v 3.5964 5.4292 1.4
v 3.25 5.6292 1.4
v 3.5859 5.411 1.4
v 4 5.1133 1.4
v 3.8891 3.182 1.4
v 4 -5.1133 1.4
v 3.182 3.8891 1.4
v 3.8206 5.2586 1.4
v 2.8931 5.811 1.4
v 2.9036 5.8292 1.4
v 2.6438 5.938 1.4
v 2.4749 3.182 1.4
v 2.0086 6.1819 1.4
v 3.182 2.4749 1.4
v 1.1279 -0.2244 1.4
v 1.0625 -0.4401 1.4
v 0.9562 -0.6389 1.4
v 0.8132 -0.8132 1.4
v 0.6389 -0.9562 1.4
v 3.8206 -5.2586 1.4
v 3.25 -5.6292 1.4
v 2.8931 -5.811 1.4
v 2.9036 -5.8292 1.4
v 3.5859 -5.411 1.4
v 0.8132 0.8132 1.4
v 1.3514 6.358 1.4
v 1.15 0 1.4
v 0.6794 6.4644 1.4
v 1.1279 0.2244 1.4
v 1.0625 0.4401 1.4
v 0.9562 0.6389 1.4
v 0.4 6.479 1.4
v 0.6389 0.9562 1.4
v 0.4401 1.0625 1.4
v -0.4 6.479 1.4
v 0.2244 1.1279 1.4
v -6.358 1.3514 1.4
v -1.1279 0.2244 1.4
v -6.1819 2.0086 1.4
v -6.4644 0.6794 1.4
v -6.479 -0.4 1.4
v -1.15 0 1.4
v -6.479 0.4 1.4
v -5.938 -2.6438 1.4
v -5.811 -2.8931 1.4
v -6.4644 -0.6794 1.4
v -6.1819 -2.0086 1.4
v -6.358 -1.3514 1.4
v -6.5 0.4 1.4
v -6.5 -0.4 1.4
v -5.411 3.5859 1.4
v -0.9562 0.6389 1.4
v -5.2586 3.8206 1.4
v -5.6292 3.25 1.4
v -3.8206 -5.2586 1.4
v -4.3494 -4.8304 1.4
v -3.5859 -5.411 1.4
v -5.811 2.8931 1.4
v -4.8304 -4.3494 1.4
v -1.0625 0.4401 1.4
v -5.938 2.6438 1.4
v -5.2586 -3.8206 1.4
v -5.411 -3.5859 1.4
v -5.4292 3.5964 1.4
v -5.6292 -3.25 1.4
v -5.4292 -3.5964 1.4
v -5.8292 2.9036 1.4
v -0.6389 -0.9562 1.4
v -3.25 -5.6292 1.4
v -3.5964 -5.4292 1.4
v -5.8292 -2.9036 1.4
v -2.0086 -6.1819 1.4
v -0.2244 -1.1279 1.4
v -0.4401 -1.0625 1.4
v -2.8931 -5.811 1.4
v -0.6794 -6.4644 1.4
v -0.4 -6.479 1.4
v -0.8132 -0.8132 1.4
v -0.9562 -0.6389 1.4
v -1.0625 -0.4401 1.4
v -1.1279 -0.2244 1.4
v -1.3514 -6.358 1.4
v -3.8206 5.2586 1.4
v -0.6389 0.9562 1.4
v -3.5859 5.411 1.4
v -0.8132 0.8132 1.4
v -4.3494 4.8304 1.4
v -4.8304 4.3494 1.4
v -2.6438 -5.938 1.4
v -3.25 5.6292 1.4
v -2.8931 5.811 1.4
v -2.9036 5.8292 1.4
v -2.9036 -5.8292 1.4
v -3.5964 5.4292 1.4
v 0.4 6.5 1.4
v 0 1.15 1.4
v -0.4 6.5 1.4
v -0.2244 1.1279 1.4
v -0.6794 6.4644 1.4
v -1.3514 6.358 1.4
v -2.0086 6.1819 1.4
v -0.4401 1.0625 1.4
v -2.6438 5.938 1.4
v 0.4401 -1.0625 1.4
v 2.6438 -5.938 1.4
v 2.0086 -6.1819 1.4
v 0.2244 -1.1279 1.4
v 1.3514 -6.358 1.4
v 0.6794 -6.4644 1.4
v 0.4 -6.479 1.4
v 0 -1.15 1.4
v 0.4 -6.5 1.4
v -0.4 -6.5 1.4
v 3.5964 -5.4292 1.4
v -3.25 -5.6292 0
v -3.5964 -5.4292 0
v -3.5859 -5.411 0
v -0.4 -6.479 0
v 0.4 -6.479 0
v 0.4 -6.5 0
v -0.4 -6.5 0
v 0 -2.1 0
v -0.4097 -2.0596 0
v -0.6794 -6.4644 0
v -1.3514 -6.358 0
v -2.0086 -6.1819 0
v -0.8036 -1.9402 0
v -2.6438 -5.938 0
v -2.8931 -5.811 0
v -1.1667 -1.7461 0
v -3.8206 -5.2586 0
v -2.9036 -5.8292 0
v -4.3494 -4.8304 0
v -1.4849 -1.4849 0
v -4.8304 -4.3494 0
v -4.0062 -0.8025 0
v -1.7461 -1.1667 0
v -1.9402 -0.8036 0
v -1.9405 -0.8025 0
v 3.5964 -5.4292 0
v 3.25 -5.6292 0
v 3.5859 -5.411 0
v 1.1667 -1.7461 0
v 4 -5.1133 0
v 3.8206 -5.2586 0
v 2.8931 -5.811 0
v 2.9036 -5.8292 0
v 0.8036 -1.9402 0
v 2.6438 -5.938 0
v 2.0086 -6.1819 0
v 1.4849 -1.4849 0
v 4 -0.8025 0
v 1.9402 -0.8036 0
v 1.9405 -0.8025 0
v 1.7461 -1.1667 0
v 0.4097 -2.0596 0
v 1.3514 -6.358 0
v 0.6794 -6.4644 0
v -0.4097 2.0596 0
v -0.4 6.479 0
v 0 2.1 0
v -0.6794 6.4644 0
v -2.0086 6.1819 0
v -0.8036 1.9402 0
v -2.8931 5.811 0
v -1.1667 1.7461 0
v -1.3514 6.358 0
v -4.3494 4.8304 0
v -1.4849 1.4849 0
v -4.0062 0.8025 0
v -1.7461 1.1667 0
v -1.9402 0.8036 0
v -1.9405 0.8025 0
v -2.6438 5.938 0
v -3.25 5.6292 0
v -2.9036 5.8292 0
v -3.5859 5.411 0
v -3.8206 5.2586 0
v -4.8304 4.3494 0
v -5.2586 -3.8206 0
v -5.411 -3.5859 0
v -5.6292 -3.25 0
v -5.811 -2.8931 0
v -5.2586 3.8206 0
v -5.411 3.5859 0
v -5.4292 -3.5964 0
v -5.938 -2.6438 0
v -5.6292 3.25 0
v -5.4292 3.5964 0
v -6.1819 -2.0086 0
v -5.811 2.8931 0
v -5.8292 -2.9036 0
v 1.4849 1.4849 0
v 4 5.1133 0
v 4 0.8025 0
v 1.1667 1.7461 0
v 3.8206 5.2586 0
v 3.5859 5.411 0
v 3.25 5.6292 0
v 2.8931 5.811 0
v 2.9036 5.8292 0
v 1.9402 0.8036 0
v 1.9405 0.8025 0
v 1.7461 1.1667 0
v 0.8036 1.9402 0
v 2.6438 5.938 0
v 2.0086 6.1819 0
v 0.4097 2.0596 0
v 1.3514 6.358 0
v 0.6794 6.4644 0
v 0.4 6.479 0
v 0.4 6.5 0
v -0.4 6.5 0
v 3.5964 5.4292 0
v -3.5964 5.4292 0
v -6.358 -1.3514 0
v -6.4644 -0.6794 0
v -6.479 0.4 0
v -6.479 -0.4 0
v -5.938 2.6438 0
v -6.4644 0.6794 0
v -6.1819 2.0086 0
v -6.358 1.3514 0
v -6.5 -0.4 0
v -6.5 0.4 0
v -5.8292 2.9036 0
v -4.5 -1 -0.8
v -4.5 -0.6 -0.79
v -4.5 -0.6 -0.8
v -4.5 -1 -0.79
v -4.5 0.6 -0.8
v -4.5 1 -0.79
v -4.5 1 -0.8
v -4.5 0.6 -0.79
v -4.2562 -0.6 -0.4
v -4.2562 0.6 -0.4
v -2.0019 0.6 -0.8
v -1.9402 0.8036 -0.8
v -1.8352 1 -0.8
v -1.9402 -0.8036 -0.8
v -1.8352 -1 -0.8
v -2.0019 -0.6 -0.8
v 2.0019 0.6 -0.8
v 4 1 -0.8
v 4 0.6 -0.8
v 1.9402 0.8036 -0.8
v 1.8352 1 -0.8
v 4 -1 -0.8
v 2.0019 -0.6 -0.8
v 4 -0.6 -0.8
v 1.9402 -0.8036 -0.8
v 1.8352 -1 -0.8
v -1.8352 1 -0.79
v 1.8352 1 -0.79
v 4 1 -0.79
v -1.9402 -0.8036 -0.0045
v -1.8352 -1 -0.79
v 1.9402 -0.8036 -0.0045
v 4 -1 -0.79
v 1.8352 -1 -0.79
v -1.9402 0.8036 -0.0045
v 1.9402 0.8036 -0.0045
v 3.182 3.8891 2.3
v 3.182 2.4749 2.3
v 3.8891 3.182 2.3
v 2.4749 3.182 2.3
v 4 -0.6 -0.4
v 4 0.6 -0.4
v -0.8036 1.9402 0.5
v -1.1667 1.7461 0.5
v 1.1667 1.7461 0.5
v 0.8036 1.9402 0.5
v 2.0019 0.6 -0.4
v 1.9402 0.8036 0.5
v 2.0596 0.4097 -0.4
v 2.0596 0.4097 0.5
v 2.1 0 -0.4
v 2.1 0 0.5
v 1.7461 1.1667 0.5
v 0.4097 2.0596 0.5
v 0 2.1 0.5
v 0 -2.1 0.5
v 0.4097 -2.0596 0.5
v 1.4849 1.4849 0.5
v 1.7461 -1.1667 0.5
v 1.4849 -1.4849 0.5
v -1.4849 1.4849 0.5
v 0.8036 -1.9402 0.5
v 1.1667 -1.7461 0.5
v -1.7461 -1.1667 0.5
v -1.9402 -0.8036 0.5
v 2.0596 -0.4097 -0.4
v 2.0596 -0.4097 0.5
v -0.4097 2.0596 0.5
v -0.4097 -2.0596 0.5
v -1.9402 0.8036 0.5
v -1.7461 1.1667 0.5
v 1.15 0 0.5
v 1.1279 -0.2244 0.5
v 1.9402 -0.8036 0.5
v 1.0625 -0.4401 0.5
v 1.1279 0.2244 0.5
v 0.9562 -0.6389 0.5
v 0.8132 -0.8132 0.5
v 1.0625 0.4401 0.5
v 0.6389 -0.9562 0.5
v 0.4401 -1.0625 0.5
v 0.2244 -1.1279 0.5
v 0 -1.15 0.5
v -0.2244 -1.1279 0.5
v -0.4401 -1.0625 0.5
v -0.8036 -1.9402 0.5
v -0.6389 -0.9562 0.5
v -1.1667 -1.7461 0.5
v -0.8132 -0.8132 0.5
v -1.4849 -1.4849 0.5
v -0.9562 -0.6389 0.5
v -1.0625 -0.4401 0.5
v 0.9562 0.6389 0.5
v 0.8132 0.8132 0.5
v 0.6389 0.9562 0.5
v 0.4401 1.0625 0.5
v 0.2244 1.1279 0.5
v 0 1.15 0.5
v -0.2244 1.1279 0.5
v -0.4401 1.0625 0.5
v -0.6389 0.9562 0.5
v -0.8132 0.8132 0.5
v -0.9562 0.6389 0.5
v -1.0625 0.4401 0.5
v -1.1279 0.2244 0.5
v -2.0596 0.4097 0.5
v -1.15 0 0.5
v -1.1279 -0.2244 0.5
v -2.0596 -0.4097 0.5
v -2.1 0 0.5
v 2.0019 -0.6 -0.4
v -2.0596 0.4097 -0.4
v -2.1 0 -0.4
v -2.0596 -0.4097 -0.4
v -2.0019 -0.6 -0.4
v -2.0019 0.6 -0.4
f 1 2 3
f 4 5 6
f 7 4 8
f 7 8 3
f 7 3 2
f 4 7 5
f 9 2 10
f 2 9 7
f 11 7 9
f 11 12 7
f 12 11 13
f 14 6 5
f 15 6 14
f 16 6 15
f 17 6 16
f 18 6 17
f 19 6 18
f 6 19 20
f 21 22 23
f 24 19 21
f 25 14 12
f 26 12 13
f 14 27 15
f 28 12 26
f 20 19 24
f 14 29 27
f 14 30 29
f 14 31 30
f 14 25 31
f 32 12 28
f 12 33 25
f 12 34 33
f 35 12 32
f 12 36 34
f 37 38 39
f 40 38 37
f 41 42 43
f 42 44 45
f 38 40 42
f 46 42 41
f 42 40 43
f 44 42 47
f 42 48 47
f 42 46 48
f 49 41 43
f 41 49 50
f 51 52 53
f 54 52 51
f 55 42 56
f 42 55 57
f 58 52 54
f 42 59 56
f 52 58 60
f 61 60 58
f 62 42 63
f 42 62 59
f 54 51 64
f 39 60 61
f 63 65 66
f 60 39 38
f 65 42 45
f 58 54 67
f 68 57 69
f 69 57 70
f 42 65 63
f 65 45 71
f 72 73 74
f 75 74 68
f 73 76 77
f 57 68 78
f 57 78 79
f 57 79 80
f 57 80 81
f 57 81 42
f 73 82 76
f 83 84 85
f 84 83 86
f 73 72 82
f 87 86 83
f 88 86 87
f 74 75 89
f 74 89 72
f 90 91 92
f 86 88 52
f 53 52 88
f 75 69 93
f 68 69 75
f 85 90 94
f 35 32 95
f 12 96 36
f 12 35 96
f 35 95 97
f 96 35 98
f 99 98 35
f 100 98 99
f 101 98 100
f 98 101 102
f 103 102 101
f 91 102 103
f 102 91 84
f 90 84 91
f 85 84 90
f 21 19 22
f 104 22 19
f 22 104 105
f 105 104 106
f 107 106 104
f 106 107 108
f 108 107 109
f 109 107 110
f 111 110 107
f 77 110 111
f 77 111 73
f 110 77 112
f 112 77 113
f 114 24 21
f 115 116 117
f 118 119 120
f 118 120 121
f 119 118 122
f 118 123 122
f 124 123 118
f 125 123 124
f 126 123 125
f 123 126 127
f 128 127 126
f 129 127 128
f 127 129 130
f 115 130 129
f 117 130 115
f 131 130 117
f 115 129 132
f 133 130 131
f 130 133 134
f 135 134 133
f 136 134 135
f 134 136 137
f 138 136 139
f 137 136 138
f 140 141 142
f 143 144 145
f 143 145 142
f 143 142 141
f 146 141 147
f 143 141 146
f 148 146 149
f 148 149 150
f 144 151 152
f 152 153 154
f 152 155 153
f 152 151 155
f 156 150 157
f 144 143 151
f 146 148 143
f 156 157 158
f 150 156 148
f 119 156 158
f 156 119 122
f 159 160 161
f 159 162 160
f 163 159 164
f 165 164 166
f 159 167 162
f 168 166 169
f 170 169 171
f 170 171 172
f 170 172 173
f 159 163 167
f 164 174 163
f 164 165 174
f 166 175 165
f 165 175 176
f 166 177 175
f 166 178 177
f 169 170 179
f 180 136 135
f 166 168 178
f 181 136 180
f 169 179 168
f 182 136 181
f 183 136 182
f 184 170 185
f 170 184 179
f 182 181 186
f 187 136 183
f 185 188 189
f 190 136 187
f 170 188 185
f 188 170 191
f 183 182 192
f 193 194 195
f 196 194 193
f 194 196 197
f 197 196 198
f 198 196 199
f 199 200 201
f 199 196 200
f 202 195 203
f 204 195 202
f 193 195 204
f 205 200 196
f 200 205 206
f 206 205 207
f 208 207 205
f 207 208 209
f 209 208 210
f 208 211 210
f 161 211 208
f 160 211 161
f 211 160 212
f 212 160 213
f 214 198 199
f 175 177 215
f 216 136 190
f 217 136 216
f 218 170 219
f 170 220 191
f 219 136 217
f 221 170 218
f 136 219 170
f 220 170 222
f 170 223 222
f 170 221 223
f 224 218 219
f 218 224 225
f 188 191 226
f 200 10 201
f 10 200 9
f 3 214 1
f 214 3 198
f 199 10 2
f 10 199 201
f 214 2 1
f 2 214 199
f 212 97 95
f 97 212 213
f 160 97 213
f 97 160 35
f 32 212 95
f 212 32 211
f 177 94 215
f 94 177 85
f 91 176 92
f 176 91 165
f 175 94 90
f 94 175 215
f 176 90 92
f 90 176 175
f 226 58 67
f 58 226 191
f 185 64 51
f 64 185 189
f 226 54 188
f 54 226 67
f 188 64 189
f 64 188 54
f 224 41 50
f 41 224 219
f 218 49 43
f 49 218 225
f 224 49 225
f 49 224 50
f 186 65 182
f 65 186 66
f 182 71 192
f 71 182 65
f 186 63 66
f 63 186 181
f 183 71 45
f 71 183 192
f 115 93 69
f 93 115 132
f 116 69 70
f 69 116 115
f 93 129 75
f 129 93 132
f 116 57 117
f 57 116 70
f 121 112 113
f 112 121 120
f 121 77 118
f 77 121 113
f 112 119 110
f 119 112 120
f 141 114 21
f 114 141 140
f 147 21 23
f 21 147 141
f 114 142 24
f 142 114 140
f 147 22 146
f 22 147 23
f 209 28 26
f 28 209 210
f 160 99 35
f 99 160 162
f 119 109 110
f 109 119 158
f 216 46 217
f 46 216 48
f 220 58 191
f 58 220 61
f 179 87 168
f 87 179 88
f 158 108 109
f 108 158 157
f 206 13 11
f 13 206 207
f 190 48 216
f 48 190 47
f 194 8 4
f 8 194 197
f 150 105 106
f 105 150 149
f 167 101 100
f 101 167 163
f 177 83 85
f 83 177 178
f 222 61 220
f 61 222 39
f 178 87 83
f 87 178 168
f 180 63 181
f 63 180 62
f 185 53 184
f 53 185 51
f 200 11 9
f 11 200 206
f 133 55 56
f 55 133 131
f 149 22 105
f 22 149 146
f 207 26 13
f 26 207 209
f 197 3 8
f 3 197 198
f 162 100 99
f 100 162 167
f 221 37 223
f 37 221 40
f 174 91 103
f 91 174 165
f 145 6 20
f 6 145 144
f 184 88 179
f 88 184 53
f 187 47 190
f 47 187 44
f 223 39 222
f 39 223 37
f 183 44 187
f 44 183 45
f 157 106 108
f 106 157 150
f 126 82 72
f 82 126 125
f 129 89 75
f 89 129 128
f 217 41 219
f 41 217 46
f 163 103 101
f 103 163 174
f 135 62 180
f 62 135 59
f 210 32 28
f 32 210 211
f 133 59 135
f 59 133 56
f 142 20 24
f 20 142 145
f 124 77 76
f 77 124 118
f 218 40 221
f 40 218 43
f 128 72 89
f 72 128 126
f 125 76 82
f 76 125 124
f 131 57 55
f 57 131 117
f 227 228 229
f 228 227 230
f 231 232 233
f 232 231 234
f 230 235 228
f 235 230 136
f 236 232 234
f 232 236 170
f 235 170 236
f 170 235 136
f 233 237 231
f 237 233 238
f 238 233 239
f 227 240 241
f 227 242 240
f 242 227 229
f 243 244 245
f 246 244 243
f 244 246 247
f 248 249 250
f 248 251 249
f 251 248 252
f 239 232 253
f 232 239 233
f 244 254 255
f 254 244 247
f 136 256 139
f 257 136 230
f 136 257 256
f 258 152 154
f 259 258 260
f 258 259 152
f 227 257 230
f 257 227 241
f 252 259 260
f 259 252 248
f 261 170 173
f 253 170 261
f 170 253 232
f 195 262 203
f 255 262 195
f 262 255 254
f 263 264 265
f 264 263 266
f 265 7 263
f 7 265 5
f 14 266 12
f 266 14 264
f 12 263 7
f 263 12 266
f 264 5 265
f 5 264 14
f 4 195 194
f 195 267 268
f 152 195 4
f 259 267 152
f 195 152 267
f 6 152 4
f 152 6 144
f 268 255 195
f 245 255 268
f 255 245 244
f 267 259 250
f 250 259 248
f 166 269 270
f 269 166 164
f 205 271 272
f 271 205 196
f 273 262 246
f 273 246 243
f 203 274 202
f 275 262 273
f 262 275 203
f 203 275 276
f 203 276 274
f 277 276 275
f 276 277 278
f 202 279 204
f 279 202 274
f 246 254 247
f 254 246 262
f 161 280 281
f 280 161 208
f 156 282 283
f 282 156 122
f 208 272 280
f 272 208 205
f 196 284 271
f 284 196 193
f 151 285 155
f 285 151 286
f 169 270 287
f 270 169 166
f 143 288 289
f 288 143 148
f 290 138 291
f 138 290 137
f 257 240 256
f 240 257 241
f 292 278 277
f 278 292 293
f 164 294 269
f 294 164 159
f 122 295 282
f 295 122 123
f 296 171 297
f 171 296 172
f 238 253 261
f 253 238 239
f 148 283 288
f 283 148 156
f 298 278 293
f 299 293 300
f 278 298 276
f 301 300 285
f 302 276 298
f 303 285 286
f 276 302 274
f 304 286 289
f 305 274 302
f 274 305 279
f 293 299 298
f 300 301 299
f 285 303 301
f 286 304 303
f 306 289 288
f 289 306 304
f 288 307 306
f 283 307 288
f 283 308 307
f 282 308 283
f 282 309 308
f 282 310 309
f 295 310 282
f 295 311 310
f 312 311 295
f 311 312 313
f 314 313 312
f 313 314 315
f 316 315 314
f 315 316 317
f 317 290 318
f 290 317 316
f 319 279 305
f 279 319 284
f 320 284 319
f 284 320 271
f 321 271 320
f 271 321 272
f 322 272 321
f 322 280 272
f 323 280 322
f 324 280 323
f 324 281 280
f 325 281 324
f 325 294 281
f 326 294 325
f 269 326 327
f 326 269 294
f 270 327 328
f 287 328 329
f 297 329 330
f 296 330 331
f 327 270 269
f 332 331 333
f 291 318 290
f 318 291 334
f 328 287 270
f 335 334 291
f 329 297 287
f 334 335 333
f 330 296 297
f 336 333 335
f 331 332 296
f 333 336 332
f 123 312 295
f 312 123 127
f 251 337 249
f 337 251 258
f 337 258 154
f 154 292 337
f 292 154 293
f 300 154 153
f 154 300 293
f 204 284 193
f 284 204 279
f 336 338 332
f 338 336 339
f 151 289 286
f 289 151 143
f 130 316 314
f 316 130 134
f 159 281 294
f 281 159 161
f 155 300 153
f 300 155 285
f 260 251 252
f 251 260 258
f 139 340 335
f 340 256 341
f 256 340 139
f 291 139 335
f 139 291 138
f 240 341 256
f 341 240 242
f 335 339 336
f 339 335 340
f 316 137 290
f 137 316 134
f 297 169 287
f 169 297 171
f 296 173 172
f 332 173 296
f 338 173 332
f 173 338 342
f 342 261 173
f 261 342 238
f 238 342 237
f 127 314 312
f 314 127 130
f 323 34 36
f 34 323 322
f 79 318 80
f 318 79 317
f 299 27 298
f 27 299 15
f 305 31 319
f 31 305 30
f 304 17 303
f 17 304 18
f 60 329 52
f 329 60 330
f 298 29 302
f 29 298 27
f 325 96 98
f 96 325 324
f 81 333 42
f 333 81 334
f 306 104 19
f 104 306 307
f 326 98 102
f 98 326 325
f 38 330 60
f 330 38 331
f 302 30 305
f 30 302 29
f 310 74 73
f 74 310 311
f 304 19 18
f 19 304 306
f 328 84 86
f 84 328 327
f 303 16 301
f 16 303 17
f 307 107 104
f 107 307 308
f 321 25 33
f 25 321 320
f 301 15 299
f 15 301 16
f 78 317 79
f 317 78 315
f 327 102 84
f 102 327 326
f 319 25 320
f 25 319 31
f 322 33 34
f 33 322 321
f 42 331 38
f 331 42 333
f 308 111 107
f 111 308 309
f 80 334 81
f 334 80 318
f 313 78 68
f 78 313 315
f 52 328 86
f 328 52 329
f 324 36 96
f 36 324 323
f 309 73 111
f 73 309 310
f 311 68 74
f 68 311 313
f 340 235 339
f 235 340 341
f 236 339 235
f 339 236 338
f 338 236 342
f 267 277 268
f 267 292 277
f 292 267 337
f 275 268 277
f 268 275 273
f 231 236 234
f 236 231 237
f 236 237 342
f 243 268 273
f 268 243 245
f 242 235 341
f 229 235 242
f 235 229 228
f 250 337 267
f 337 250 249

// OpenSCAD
// ==========================================
// ConnectedDoll2 Rotary Lock (rotary_lock.scad)
// 電池フタ用 回転ロック（ロータリーラッチ）ダイヤル
// 完全沈め込み仕様（底面Z=0より0.2mm奥へ没入し卓上ガタつきゼロ）
// ==========================================

include <params.scad>;

module rotary_lock(angle=0) {
    rotate([0, 0, angle]) {
        difference() {
            // 1. ダイヤル本体（円盤 + 操作リブ + セレーション + リミッターピン）
            union() {
                // (a) メインダイヤル円盤 (φ13.0mm, 厚み rotary_rim_t = 1.4mm, Z = 0〜1.4mm)
                cylinder(h=rotary_rim_t, d=rotary_dial_d, $fn=60);

                // (b) 指先操作用 つまみリブ (コイン溝兼用: Z = -0.8mm〜0mm)
                // 完全にポケット内に沈み込み、外装面Z=0より0.2mm奥に収まる
                translate([0, 0, -rotary_rib_h]) {
                    hull() {
                        translate([-4.5, -1.0, 0]) cube([9.0, 2.0, 0.01]);
                        translate([-4.0, -0.8, rotary_rib_h]) cube([8.0, 1.6, 0.01]);
                    }
                }

                // (c) ダイヤル外周滑り止めセレーション (微細ローレット)
                for (a = [0 : 30 : 330]) {
                    rotate([0, 0, a])
                        translate([rotary_dial_d / 2 - 0.3, -0.4, 0])
                            cube([0.3, 0.8, rotary_rim_t]);
                }

                // (d) 裏面 90度回転リミッターピン (ケース円弧溝と嵌合し0°〜90°で制動: 高さ0.9mm)
                translate([0, 0, rotary_rim_t]) {
                    rotate([0, 0, 45])
                        translate([4.5 - 0.5, -0.5, 0])
                            cube([1.0, 1.0, 0.9]);
                }
            }

            // 2. Dカット平坦部 (OPEN位置 90°でフタ端面と完全に干渉しないようカット)
            // LOCK(0°)時は+X側、OPEN(90°)時にフタ側(-Y)を向くよう配置
            cut_r = rotary_dial_d / 2 - rotary_cam_overlap - 0.7; // 中心から 4.0mm
            rotate([0, 0, 90])
                translate([-rotary_dial_d, -rotary_dial_d, -rotary_rib_h - 0.5])
                    cube([rotary_dial_d * 2, rotary_dial_d - cut_r, rotary_dial_t + 2.0]);

            // 3. 中心 M2支柱ネジ 表面頭沈め穴 ＆ 貫通ピボット穴 (外側からの貫通締結仕様)
            // (a) ネジ頭沈めザグリ穴 (φ4.2mm x 深さ1.3mm: なべ頭がリブ内部に完全沈み込み)
            translate([0, 0, -rotary_rib_h - 0.1])
                cylinder(h=rotary_screw_head_h + 0.1, d=rotary_screw_head_d, $fn=32);
            // (b) ネジ軸通過貫通穴 (φ2.3mm: M2ネジ軸の周りをダイヤルがスムーズに空転)
            translate([0, 0, -rotary_rib_h - 0.2])
                cylinder(h=rotary_dial_t + 2.0, d=rotary_pivot_pass_d, $fn=32);

            // 4. 状態インジケーター刻印 (施錠側を示す矢印ドット: リブ先端)
            translate([0, -rotary_dial_d / 2 + 1.2, -rotary_rib_h])
                cylinder(h=0.5, d=1.0, $fn=16);

            // 5. 指先つまみ操作用 コインスロット (左右リブ上面)
            translate([-5.0, -0.6, -rotary_rib_h - 0.1])
                cube([10.0, 1.2, 0.5]);
        }
    }
}

// 単体プレビュー描画 (施錠状態 angle=0)
rotary_lock(0);
